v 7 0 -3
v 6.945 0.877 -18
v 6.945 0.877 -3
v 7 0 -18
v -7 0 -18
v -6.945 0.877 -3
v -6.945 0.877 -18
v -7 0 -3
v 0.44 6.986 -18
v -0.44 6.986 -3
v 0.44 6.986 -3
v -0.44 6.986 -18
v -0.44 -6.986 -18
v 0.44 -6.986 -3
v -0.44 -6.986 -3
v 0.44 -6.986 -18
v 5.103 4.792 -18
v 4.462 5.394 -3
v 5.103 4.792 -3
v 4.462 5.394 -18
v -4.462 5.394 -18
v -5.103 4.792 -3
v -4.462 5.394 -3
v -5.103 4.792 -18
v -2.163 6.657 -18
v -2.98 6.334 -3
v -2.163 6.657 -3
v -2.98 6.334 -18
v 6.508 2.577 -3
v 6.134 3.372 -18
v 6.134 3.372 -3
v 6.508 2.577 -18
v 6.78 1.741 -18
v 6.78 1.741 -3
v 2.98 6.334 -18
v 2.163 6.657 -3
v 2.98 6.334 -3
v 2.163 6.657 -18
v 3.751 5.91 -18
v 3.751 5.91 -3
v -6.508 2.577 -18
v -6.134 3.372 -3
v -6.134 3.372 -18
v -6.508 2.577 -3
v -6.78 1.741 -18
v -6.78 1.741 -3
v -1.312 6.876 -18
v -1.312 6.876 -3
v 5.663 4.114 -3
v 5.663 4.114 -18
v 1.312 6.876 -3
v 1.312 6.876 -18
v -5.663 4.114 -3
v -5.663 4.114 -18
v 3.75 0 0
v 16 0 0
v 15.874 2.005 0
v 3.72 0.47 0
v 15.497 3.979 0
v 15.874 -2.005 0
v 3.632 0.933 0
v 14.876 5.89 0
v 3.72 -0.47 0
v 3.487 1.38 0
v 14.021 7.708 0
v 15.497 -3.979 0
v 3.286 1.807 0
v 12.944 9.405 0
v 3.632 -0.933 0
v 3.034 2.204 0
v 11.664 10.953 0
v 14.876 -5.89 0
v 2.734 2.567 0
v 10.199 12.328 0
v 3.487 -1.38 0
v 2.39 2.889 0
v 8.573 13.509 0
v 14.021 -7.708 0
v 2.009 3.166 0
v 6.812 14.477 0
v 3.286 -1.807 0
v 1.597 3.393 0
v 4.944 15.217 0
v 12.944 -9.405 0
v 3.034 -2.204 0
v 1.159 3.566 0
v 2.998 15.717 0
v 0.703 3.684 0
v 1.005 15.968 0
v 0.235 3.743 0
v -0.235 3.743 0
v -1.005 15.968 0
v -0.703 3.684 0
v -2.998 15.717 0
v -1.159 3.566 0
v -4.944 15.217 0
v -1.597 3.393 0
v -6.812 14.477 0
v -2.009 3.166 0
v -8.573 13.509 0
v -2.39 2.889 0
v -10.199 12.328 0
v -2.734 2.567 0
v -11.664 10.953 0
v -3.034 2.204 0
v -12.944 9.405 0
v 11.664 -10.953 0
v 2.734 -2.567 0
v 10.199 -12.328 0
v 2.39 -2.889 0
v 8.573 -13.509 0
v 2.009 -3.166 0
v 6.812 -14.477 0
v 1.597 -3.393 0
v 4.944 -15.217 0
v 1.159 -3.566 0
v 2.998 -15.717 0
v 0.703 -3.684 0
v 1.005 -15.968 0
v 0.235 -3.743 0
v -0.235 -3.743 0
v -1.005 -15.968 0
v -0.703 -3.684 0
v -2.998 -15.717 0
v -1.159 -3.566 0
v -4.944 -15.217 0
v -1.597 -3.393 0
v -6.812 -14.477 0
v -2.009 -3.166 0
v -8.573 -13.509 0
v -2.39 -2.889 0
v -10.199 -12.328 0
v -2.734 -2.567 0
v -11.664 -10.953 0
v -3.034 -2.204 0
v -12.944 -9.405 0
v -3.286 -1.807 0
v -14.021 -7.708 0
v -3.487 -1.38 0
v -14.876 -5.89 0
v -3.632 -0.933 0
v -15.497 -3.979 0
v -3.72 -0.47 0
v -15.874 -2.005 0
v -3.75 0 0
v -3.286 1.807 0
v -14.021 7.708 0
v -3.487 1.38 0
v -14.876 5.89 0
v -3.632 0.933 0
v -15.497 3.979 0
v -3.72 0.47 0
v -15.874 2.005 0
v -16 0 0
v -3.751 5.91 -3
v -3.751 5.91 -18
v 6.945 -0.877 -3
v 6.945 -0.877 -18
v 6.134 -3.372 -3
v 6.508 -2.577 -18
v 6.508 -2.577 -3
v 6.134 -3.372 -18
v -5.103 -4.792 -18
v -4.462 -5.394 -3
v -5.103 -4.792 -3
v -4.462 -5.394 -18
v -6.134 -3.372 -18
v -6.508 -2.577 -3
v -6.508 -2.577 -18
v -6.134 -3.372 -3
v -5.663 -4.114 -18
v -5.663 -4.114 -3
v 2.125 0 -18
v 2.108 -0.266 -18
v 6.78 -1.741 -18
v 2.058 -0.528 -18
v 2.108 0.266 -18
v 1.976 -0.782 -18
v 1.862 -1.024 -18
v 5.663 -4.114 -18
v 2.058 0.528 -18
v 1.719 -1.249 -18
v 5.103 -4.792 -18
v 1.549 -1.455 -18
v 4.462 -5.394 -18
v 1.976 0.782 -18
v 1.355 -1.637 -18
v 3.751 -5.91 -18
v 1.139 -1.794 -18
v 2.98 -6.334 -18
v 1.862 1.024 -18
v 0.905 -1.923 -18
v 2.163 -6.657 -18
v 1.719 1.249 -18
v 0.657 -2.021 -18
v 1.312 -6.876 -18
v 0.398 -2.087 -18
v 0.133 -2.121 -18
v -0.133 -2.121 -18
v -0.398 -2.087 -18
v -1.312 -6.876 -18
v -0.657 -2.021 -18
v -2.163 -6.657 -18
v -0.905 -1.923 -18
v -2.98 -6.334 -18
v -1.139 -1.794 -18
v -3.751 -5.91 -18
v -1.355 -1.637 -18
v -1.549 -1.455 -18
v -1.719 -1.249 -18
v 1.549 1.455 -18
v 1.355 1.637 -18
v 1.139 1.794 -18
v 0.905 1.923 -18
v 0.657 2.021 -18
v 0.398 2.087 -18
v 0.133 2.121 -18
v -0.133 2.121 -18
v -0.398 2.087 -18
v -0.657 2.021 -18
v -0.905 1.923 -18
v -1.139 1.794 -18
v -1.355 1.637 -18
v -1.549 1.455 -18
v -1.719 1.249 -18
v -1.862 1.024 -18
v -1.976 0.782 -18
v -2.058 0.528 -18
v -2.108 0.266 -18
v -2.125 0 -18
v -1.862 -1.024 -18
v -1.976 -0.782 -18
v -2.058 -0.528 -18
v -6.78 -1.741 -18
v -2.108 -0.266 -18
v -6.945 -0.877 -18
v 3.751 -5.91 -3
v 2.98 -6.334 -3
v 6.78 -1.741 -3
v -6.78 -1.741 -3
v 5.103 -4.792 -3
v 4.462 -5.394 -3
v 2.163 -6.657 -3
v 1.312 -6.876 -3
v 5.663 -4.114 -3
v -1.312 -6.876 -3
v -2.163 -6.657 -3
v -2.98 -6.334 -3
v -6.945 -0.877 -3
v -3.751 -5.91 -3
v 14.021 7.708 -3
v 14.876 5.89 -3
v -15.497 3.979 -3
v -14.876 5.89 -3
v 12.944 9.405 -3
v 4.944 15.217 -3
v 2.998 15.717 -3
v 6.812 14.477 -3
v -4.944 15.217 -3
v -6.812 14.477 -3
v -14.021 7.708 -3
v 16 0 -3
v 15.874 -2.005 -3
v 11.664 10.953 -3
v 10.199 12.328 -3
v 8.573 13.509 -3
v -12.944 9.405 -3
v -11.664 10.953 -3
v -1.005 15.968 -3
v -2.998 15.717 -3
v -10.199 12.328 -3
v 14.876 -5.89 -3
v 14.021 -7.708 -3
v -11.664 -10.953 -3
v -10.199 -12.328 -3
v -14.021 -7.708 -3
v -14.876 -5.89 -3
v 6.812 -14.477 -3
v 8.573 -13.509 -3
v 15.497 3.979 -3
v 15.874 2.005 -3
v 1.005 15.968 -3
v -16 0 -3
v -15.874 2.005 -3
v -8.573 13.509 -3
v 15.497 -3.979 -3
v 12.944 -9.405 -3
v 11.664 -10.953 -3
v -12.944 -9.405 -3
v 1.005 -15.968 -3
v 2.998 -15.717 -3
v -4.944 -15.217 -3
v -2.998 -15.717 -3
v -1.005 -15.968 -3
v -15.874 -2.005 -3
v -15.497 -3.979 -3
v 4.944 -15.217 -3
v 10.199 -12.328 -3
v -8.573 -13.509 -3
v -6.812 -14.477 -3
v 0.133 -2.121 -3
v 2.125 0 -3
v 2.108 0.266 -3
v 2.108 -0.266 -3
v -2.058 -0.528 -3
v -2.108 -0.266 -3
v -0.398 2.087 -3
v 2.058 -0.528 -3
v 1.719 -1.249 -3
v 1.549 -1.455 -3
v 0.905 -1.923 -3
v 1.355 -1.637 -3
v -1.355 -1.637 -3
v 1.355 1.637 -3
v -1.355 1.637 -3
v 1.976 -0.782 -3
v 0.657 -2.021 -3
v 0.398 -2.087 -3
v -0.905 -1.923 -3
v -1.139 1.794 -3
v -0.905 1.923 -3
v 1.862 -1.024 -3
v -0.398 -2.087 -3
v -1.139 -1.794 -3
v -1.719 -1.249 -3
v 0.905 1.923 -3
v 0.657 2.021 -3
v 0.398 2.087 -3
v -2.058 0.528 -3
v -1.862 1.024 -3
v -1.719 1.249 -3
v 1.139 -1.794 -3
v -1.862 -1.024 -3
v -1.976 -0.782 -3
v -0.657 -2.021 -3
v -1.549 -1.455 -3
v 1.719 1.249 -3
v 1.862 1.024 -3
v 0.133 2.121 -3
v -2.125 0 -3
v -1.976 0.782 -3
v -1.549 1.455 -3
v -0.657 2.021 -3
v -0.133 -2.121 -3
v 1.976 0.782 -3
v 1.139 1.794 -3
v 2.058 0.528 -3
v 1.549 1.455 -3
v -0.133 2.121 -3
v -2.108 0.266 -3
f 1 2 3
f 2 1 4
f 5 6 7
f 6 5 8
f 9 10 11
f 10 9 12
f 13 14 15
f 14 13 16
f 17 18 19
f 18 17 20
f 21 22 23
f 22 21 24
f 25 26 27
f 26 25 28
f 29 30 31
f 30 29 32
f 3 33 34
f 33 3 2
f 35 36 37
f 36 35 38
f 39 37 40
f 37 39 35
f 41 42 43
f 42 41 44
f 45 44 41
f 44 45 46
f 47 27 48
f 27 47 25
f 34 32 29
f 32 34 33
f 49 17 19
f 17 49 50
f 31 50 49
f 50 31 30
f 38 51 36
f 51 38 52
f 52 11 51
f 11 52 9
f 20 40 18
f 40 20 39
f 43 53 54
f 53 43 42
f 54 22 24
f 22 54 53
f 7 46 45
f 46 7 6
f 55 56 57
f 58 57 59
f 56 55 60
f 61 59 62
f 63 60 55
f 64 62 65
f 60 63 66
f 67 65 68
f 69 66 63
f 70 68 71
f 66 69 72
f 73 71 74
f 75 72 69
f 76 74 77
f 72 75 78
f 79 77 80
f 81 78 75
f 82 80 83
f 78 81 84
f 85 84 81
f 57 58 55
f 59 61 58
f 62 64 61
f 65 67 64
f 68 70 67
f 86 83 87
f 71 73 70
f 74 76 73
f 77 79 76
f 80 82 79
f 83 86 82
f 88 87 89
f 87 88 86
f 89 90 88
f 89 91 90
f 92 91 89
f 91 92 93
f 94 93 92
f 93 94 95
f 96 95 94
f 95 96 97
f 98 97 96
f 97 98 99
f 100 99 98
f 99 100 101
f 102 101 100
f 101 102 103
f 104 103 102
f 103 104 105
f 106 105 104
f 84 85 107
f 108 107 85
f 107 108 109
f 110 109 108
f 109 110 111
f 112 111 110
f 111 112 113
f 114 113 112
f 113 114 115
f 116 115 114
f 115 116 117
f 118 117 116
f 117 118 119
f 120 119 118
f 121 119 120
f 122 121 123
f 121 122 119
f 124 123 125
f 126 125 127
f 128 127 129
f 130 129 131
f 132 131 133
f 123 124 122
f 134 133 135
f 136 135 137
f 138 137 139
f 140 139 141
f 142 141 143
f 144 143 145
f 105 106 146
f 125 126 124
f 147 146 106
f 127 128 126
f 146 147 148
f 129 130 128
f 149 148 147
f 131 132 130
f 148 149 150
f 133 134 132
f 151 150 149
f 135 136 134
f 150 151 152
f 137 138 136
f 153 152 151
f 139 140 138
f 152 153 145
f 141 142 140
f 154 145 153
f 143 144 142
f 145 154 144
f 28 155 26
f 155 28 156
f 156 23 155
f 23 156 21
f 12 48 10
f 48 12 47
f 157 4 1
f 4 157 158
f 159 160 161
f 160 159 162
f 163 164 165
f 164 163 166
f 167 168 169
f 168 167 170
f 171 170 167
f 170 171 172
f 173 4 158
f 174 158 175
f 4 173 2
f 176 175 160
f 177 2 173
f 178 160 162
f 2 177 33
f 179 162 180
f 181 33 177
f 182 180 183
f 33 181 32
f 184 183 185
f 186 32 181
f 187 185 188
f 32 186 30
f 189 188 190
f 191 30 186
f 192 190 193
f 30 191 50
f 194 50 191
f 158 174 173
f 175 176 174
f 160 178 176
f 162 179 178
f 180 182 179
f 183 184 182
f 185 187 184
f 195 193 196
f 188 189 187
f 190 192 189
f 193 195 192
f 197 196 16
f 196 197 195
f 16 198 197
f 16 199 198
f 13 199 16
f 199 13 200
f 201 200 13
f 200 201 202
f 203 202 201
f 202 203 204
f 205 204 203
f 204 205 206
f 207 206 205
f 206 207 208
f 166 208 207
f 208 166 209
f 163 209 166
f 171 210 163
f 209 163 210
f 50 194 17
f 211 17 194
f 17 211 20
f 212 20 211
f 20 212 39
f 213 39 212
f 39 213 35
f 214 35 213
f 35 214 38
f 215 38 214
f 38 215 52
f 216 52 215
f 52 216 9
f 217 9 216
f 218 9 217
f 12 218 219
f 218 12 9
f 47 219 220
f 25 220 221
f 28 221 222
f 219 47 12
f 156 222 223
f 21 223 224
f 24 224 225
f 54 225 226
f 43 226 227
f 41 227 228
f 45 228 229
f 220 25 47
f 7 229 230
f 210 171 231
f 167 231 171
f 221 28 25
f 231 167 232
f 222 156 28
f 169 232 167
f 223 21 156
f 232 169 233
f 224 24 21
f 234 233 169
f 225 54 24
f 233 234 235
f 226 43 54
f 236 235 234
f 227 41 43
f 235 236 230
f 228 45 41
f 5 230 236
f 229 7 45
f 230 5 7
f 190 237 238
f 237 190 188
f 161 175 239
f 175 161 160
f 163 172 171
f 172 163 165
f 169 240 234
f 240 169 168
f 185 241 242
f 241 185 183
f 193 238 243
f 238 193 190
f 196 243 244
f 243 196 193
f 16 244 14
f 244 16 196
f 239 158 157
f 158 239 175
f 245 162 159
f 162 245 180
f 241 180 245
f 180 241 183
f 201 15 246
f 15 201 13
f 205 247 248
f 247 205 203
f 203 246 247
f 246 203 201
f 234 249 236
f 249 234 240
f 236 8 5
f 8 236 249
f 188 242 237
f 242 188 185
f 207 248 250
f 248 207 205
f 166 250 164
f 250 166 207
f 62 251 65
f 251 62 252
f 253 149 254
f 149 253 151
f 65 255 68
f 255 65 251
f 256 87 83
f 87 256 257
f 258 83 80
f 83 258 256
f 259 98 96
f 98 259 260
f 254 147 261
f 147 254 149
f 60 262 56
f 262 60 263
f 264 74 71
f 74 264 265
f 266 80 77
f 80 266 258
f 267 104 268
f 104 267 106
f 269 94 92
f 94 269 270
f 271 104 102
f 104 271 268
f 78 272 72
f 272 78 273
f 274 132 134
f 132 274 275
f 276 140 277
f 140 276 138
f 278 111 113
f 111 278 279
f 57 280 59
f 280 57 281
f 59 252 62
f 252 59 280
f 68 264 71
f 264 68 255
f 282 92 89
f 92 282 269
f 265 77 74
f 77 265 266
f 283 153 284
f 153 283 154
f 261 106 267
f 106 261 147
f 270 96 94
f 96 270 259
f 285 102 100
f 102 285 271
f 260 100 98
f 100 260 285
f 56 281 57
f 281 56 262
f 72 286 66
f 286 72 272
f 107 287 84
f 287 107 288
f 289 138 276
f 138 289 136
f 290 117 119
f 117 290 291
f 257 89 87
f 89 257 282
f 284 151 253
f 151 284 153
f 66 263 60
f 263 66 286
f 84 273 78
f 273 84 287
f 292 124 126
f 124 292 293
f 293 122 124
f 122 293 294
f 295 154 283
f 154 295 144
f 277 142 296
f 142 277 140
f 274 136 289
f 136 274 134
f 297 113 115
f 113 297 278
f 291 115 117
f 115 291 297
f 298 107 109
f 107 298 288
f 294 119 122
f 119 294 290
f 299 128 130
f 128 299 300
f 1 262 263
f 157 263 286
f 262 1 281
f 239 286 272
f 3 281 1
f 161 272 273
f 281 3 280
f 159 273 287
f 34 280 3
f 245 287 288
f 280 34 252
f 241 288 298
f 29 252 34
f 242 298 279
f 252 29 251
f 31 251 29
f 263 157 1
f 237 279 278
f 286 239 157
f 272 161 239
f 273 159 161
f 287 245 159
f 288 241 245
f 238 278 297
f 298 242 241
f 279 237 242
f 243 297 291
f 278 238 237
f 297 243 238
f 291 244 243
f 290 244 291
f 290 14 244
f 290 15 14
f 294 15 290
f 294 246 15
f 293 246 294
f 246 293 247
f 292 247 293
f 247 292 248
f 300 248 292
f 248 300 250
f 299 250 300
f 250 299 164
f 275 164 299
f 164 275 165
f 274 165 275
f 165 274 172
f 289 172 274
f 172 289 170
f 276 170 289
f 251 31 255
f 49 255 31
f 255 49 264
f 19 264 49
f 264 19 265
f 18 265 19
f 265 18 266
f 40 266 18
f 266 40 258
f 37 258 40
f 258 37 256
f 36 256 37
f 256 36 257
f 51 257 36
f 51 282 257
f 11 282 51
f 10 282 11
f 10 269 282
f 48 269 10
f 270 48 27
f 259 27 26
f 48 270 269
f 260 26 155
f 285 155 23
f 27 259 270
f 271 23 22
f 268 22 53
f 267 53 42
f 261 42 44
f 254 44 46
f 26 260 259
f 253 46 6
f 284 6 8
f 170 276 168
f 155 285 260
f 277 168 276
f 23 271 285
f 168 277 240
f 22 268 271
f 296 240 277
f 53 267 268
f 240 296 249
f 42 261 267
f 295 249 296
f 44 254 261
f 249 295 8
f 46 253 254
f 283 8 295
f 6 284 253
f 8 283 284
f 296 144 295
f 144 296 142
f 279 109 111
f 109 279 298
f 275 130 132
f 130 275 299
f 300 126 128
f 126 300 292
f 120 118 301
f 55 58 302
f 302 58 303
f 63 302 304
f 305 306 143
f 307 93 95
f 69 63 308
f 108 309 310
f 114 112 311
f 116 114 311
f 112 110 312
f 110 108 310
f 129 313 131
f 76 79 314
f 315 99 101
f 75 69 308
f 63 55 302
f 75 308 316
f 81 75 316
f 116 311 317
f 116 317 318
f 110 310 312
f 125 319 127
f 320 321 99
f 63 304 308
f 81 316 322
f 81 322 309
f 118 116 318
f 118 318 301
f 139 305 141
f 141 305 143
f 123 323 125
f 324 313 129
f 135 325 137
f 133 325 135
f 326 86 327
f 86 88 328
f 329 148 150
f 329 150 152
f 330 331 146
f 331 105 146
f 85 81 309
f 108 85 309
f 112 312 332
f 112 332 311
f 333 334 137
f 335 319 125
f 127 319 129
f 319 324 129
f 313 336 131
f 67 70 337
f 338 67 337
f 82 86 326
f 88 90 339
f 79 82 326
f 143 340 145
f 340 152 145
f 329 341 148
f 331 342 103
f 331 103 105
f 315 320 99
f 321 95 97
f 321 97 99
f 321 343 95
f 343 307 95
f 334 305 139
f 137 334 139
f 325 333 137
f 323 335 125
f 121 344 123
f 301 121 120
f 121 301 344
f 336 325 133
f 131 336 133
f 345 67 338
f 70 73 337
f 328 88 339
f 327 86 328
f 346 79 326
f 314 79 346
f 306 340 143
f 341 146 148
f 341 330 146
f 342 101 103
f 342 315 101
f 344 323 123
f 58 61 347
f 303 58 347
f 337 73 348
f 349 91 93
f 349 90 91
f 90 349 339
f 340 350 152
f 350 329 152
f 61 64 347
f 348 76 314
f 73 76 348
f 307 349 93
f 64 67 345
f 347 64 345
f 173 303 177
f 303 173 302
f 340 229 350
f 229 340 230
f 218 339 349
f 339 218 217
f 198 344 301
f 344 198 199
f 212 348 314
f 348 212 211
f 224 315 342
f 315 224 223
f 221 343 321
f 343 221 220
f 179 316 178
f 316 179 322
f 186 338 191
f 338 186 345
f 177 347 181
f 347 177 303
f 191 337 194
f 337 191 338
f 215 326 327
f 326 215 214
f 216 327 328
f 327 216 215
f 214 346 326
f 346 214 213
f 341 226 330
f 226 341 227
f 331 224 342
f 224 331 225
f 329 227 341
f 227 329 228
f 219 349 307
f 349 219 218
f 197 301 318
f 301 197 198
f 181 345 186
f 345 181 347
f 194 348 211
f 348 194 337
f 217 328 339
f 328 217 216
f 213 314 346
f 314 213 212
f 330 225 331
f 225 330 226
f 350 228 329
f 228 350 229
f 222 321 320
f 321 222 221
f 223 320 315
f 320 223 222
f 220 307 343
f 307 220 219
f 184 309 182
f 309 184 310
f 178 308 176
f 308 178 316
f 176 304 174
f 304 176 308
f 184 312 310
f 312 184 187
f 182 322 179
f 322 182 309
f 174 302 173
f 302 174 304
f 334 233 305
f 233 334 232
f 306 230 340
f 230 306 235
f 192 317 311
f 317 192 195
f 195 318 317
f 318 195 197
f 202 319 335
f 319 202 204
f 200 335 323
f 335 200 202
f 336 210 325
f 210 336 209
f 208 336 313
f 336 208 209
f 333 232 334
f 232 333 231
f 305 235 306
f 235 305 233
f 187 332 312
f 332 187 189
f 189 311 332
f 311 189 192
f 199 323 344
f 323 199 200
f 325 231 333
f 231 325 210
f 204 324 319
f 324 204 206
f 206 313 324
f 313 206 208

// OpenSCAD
$fn = 50;


difference() {
	union() {
		translate(v = [0, 0, -18.0000000000]) {
			cylinder(h = 18, r = 7.0000000000);
		}
		translate(v = [0, 0, -3.0000000000]) {
			cylinder(h = 3, r = 16.0000000000);
		}
	}
	union() {
		translate(v = [0, 0, 0]) {
			rotate(a = [0, 0, 0]) {
				difference() {
					union() {
						#translate(v = [0, 0, -18.0000000000]) {
							cylinder(h = 18, r = 2.0000000000);
						}
						#translate(v = [0, 0, -3]) {
							cylinder(h = 3, r = 7.0000000000, r1 = 2.1250000000, r2 = 3.7500000000);
						}
						#translate(v = [0, 0, -18.0000000000]) {
							cylinder(h = 18, r = 2.1250000000);
						}
						#translate(v = [0, 0, -18.0000000000]) {
							cylinder(h = 18, r = 2.0000000000);
						}
					}
					union();
				}
			}
		}
	}
}
